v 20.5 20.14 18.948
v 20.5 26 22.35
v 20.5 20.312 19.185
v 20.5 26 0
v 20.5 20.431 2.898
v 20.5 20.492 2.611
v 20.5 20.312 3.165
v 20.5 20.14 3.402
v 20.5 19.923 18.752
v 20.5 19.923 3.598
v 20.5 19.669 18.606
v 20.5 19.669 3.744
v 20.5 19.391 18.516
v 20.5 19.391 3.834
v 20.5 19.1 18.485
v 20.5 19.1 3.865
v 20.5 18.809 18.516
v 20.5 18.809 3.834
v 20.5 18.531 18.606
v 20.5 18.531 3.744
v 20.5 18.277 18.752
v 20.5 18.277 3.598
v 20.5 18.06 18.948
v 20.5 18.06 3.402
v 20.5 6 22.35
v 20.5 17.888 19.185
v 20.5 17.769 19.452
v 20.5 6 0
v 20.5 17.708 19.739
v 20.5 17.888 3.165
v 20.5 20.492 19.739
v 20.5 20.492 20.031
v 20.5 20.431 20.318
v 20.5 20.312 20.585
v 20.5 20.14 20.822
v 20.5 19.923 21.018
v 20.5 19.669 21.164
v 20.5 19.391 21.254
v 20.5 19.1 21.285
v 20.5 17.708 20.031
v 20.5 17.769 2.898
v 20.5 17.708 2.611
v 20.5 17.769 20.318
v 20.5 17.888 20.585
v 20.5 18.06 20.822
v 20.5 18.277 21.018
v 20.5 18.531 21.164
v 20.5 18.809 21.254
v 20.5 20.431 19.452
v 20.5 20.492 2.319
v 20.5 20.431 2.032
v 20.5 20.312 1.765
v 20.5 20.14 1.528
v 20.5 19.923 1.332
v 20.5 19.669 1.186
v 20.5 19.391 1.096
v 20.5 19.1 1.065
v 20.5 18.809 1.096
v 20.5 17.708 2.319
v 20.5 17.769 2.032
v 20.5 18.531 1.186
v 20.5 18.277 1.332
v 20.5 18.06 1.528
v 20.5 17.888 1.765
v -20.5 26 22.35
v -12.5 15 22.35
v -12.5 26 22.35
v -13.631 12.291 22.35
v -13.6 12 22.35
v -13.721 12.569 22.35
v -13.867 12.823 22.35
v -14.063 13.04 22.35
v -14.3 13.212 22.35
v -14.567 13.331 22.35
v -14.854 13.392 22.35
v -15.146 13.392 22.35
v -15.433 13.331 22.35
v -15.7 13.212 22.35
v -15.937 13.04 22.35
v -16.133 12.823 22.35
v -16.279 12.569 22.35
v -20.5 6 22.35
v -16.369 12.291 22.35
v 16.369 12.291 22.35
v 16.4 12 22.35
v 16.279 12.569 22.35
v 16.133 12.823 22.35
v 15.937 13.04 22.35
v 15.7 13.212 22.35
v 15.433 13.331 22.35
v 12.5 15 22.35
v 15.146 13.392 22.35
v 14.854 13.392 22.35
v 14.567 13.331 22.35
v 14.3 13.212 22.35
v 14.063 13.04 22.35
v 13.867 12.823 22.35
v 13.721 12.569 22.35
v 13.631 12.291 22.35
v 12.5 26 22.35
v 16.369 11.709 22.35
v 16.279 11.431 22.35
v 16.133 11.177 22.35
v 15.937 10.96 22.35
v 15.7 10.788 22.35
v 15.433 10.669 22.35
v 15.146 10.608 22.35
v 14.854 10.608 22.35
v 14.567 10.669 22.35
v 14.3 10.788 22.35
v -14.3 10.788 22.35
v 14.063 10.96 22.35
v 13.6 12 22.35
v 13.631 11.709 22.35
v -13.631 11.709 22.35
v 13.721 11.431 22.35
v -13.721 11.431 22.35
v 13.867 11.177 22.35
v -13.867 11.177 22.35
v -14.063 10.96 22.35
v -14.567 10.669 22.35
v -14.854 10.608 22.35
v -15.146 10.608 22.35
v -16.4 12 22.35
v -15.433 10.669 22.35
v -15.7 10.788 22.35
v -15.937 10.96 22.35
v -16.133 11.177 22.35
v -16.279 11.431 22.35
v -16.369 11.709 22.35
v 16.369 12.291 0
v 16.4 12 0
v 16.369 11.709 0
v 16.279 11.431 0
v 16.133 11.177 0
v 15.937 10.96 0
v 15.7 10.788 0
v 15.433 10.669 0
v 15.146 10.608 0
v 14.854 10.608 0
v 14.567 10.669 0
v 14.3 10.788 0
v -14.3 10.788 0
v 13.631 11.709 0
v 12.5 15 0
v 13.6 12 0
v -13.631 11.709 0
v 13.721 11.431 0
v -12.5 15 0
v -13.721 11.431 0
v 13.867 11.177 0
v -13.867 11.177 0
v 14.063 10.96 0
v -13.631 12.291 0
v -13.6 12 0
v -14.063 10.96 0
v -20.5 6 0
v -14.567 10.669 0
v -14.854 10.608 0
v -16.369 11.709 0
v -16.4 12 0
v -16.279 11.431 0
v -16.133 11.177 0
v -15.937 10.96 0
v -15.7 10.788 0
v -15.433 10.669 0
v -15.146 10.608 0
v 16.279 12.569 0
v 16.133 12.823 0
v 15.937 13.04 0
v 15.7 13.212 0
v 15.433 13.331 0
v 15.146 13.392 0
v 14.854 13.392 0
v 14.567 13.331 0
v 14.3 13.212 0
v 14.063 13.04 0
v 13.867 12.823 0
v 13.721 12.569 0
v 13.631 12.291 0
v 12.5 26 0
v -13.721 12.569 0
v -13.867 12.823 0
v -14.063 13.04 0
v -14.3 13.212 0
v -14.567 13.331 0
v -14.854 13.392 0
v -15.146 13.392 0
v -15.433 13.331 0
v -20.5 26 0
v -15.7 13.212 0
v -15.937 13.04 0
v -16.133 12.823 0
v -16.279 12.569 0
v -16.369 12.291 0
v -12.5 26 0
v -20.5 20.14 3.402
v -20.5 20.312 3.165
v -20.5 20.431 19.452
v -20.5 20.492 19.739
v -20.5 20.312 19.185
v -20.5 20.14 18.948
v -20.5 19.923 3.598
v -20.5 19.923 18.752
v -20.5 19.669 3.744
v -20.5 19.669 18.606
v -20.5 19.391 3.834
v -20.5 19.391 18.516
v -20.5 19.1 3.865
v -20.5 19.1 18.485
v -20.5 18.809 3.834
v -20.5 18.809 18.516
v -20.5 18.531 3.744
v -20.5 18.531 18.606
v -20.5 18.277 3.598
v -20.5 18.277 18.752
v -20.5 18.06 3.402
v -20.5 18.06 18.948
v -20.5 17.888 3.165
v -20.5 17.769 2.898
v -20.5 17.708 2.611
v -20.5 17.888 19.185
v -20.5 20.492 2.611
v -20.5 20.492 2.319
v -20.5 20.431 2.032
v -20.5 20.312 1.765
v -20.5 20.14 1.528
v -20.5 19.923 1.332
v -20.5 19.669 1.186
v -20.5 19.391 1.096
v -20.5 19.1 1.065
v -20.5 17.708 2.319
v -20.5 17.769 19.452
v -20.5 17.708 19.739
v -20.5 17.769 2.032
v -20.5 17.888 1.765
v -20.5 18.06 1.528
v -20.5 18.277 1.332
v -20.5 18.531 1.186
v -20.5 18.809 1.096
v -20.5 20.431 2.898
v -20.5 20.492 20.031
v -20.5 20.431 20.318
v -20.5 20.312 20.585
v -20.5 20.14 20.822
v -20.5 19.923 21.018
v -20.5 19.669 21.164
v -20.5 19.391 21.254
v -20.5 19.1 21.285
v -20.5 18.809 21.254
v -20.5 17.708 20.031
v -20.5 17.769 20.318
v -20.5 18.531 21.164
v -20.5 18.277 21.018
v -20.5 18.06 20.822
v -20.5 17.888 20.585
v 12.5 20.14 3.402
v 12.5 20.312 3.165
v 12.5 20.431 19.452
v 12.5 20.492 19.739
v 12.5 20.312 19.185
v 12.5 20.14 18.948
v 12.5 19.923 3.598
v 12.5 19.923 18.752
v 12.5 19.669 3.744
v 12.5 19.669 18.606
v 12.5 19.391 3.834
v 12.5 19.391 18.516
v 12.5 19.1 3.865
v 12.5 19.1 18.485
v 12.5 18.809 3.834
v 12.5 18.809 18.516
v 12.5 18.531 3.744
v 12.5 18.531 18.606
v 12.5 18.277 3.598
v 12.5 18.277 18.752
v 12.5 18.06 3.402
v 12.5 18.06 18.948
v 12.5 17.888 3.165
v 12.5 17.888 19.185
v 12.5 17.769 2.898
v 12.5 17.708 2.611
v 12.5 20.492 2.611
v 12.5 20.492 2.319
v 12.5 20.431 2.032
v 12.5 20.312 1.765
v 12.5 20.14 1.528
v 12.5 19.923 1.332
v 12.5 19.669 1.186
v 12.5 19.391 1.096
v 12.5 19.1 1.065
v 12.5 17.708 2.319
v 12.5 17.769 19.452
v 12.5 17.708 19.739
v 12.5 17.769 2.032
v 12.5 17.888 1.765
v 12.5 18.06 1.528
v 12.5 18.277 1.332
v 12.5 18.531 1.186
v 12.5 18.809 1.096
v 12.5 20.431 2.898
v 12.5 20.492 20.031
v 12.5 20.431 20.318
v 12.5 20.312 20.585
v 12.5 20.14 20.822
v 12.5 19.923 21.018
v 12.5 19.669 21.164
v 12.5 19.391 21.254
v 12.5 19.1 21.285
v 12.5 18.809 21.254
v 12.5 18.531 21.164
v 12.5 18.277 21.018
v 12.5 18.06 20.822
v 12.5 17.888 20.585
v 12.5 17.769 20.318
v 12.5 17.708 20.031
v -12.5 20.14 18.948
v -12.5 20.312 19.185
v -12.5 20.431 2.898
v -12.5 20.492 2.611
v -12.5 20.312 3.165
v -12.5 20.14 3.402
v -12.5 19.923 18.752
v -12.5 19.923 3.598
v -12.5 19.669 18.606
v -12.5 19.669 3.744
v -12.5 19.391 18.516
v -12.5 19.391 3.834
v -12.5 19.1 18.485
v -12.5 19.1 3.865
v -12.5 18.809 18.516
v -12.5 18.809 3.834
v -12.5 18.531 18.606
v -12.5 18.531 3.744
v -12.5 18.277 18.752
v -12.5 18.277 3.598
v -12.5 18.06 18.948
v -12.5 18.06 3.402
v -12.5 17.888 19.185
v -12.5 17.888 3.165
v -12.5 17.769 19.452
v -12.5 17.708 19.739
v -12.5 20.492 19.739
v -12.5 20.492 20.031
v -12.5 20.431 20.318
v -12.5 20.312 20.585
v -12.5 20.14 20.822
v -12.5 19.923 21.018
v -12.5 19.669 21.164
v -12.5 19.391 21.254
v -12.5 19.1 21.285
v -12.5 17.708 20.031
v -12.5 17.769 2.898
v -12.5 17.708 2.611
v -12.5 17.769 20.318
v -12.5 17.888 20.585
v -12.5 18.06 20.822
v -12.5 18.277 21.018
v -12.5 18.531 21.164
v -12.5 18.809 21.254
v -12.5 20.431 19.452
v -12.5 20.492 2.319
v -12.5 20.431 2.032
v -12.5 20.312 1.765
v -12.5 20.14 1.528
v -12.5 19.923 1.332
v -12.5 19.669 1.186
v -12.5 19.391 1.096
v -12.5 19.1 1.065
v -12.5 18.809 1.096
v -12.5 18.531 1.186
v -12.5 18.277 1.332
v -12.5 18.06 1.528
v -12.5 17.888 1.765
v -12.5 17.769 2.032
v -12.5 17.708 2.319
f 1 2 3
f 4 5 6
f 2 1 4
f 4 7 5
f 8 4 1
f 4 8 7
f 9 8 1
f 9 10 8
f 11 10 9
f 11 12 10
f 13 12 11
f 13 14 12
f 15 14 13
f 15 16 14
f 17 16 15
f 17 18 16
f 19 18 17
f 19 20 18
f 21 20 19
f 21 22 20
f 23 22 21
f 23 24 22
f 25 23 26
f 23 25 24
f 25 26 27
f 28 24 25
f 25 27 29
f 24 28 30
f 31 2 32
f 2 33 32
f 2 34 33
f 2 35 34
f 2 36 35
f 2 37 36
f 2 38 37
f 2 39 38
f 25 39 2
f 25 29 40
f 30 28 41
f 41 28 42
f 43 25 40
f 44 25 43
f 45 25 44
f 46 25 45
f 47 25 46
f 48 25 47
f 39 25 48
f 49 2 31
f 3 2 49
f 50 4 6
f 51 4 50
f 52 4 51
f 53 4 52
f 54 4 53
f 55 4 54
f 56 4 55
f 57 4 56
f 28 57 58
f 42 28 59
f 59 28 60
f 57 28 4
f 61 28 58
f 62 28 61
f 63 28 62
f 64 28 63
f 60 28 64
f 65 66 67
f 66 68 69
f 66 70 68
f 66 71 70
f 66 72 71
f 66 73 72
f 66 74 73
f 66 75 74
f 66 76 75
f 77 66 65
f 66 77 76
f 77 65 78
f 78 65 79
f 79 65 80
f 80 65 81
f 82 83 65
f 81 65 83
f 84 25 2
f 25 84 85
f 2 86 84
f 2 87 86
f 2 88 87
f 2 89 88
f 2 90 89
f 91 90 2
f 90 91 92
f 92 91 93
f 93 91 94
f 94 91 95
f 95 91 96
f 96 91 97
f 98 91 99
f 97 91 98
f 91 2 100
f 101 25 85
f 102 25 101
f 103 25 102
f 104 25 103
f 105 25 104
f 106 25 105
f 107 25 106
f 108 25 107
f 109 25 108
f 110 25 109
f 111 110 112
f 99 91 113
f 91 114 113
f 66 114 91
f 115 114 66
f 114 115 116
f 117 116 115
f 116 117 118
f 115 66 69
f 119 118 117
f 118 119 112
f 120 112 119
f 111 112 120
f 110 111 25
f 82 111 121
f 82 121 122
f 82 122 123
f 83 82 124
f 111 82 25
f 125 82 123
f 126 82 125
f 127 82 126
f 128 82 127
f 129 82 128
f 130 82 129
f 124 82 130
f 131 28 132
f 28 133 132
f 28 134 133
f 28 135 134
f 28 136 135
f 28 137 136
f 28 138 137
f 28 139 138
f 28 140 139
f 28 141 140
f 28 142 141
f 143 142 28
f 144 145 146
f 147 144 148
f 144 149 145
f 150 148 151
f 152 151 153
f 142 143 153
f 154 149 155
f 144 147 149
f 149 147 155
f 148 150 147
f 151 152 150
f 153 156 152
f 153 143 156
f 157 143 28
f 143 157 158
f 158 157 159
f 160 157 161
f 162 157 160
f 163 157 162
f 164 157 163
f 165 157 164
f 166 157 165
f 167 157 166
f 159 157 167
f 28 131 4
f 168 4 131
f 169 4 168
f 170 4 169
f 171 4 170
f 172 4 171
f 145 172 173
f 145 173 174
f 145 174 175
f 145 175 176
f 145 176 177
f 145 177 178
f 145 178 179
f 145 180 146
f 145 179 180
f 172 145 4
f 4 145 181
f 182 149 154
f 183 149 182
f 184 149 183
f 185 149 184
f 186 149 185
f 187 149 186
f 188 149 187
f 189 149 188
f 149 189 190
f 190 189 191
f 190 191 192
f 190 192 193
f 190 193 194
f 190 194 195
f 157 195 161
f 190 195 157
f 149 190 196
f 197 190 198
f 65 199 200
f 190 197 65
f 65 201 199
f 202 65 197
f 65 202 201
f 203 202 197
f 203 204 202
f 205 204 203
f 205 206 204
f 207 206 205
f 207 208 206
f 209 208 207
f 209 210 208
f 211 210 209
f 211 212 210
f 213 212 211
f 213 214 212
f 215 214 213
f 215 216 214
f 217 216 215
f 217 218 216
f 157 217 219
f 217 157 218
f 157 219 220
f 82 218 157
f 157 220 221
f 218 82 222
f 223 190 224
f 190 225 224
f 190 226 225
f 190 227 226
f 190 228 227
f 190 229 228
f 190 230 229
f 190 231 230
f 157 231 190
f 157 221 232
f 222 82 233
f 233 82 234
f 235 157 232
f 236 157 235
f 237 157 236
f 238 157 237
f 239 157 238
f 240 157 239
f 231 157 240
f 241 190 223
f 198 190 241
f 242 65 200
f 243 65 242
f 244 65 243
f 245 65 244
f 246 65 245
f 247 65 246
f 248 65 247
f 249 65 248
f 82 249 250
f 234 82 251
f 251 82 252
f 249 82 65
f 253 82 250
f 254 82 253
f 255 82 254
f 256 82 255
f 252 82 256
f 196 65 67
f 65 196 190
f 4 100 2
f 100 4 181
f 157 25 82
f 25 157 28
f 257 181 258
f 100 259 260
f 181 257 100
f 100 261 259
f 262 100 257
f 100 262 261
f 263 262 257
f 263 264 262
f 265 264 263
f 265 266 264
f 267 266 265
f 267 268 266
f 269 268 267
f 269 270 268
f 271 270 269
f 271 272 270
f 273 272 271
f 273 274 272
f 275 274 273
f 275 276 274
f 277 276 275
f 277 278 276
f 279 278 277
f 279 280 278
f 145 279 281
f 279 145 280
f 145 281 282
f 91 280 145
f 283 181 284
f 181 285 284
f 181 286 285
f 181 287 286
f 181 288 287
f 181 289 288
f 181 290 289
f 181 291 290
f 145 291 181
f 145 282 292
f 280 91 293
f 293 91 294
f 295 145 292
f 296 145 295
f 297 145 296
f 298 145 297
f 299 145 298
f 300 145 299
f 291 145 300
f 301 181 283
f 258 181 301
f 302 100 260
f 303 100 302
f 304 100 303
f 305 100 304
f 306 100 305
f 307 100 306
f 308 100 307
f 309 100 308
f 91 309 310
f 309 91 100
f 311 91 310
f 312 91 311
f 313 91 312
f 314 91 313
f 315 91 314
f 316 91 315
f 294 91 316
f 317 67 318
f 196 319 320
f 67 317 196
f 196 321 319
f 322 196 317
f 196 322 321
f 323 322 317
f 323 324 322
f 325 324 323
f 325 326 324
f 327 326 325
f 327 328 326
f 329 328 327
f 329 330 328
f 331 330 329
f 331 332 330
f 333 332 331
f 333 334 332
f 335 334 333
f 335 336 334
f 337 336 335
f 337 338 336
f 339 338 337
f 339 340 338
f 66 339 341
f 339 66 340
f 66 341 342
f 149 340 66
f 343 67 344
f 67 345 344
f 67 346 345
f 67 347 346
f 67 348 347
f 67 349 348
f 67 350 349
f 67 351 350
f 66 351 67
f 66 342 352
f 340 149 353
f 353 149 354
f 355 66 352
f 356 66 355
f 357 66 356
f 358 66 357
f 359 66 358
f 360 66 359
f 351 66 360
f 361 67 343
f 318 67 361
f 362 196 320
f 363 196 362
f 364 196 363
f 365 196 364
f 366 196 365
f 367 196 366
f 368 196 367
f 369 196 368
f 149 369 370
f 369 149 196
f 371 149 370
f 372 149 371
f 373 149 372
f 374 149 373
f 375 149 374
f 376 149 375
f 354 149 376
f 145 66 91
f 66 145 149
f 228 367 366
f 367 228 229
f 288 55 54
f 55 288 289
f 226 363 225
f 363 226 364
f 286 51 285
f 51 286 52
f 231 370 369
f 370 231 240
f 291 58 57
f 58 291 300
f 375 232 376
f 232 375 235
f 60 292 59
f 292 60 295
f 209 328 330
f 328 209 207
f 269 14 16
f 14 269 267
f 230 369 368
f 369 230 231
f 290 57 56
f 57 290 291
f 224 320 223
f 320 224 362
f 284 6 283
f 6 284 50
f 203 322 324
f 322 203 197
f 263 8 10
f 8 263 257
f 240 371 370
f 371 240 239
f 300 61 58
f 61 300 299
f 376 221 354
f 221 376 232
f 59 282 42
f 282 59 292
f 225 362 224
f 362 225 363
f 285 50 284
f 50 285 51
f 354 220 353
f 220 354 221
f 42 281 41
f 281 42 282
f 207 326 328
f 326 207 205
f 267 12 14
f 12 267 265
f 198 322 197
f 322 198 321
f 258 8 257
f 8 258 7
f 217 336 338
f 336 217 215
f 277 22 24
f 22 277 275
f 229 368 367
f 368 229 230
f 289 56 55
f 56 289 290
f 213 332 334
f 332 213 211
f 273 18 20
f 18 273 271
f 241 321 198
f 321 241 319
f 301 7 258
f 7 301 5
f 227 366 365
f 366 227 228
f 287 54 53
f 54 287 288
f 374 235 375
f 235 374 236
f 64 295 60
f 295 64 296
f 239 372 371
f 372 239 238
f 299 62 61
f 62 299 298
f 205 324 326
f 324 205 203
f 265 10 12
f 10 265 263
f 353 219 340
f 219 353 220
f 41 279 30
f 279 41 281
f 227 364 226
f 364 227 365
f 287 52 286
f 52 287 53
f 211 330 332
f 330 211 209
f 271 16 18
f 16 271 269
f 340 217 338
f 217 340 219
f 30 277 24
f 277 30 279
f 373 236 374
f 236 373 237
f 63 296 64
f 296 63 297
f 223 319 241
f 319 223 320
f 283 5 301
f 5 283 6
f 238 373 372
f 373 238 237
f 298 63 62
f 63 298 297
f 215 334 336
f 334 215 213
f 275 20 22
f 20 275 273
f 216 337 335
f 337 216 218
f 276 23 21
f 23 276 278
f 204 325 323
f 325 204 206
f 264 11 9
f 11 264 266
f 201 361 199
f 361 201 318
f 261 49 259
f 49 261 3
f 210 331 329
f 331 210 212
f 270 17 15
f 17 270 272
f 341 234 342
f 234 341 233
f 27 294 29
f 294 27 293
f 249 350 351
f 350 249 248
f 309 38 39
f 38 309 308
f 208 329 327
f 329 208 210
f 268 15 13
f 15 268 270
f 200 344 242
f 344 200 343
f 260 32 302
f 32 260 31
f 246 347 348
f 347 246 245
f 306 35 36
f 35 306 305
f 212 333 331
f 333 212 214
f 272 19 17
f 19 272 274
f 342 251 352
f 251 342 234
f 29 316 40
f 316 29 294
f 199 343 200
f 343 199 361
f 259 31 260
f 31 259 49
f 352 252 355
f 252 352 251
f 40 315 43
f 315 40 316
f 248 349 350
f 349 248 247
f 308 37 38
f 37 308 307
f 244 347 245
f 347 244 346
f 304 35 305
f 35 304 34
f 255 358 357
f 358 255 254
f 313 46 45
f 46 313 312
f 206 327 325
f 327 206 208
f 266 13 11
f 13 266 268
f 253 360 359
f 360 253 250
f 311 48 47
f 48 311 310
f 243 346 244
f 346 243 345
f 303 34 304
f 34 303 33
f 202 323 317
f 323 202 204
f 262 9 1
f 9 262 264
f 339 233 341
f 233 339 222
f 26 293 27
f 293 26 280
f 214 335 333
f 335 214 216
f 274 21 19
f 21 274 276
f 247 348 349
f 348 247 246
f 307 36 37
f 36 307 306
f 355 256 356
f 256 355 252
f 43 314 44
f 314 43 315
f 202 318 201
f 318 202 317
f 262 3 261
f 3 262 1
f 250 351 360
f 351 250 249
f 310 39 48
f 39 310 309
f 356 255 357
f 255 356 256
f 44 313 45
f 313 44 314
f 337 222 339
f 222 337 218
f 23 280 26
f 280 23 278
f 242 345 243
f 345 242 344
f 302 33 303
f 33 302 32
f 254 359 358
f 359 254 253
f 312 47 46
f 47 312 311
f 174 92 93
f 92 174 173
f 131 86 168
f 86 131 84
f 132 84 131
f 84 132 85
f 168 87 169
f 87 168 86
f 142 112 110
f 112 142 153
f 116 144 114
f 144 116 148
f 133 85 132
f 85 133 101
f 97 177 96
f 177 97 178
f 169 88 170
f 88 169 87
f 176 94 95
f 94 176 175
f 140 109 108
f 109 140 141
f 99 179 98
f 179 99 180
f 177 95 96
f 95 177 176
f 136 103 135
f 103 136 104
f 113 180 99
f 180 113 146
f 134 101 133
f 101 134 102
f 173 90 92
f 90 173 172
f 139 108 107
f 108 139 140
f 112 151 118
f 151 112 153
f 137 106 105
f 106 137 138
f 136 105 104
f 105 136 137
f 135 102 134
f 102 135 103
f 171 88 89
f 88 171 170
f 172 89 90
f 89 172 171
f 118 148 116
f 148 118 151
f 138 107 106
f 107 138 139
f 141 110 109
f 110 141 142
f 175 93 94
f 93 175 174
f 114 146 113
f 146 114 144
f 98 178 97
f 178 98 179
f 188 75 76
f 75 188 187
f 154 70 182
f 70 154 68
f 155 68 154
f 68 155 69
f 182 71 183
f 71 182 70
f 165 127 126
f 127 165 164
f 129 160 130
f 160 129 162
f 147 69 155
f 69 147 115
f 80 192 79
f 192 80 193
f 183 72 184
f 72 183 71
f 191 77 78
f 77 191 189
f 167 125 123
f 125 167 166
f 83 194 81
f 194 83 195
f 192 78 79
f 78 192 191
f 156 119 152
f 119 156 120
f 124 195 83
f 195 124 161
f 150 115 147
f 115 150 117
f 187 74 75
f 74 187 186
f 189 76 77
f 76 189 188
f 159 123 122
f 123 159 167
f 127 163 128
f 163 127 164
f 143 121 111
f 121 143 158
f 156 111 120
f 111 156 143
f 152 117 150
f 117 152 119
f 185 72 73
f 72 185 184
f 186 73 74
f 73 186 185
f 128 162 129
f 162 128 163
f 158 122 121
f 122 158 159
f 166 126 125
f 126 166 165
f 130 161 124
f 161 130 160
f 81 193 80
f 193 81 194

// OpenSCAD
$fn=30;

difference(){
translate([-20.5,6,0])cube([41,20,22.35]);
translate([-12.5,15,-10])cube([25,12,50]);
translate([0,19.1,2.465])rotate([0,90,0])
cylinder(d=2.8,h=50,center=true,$fn=30);
translate([0,19.1,19.885])rotate([0,90,0])
cylinder(d=2.8,h=50,center=true,$fn=30);
translate([15,12,0])cylinder(d=2.8,h=30);    
translate([-15,12,0])cylinder(d=2.8,h=30);    
}
